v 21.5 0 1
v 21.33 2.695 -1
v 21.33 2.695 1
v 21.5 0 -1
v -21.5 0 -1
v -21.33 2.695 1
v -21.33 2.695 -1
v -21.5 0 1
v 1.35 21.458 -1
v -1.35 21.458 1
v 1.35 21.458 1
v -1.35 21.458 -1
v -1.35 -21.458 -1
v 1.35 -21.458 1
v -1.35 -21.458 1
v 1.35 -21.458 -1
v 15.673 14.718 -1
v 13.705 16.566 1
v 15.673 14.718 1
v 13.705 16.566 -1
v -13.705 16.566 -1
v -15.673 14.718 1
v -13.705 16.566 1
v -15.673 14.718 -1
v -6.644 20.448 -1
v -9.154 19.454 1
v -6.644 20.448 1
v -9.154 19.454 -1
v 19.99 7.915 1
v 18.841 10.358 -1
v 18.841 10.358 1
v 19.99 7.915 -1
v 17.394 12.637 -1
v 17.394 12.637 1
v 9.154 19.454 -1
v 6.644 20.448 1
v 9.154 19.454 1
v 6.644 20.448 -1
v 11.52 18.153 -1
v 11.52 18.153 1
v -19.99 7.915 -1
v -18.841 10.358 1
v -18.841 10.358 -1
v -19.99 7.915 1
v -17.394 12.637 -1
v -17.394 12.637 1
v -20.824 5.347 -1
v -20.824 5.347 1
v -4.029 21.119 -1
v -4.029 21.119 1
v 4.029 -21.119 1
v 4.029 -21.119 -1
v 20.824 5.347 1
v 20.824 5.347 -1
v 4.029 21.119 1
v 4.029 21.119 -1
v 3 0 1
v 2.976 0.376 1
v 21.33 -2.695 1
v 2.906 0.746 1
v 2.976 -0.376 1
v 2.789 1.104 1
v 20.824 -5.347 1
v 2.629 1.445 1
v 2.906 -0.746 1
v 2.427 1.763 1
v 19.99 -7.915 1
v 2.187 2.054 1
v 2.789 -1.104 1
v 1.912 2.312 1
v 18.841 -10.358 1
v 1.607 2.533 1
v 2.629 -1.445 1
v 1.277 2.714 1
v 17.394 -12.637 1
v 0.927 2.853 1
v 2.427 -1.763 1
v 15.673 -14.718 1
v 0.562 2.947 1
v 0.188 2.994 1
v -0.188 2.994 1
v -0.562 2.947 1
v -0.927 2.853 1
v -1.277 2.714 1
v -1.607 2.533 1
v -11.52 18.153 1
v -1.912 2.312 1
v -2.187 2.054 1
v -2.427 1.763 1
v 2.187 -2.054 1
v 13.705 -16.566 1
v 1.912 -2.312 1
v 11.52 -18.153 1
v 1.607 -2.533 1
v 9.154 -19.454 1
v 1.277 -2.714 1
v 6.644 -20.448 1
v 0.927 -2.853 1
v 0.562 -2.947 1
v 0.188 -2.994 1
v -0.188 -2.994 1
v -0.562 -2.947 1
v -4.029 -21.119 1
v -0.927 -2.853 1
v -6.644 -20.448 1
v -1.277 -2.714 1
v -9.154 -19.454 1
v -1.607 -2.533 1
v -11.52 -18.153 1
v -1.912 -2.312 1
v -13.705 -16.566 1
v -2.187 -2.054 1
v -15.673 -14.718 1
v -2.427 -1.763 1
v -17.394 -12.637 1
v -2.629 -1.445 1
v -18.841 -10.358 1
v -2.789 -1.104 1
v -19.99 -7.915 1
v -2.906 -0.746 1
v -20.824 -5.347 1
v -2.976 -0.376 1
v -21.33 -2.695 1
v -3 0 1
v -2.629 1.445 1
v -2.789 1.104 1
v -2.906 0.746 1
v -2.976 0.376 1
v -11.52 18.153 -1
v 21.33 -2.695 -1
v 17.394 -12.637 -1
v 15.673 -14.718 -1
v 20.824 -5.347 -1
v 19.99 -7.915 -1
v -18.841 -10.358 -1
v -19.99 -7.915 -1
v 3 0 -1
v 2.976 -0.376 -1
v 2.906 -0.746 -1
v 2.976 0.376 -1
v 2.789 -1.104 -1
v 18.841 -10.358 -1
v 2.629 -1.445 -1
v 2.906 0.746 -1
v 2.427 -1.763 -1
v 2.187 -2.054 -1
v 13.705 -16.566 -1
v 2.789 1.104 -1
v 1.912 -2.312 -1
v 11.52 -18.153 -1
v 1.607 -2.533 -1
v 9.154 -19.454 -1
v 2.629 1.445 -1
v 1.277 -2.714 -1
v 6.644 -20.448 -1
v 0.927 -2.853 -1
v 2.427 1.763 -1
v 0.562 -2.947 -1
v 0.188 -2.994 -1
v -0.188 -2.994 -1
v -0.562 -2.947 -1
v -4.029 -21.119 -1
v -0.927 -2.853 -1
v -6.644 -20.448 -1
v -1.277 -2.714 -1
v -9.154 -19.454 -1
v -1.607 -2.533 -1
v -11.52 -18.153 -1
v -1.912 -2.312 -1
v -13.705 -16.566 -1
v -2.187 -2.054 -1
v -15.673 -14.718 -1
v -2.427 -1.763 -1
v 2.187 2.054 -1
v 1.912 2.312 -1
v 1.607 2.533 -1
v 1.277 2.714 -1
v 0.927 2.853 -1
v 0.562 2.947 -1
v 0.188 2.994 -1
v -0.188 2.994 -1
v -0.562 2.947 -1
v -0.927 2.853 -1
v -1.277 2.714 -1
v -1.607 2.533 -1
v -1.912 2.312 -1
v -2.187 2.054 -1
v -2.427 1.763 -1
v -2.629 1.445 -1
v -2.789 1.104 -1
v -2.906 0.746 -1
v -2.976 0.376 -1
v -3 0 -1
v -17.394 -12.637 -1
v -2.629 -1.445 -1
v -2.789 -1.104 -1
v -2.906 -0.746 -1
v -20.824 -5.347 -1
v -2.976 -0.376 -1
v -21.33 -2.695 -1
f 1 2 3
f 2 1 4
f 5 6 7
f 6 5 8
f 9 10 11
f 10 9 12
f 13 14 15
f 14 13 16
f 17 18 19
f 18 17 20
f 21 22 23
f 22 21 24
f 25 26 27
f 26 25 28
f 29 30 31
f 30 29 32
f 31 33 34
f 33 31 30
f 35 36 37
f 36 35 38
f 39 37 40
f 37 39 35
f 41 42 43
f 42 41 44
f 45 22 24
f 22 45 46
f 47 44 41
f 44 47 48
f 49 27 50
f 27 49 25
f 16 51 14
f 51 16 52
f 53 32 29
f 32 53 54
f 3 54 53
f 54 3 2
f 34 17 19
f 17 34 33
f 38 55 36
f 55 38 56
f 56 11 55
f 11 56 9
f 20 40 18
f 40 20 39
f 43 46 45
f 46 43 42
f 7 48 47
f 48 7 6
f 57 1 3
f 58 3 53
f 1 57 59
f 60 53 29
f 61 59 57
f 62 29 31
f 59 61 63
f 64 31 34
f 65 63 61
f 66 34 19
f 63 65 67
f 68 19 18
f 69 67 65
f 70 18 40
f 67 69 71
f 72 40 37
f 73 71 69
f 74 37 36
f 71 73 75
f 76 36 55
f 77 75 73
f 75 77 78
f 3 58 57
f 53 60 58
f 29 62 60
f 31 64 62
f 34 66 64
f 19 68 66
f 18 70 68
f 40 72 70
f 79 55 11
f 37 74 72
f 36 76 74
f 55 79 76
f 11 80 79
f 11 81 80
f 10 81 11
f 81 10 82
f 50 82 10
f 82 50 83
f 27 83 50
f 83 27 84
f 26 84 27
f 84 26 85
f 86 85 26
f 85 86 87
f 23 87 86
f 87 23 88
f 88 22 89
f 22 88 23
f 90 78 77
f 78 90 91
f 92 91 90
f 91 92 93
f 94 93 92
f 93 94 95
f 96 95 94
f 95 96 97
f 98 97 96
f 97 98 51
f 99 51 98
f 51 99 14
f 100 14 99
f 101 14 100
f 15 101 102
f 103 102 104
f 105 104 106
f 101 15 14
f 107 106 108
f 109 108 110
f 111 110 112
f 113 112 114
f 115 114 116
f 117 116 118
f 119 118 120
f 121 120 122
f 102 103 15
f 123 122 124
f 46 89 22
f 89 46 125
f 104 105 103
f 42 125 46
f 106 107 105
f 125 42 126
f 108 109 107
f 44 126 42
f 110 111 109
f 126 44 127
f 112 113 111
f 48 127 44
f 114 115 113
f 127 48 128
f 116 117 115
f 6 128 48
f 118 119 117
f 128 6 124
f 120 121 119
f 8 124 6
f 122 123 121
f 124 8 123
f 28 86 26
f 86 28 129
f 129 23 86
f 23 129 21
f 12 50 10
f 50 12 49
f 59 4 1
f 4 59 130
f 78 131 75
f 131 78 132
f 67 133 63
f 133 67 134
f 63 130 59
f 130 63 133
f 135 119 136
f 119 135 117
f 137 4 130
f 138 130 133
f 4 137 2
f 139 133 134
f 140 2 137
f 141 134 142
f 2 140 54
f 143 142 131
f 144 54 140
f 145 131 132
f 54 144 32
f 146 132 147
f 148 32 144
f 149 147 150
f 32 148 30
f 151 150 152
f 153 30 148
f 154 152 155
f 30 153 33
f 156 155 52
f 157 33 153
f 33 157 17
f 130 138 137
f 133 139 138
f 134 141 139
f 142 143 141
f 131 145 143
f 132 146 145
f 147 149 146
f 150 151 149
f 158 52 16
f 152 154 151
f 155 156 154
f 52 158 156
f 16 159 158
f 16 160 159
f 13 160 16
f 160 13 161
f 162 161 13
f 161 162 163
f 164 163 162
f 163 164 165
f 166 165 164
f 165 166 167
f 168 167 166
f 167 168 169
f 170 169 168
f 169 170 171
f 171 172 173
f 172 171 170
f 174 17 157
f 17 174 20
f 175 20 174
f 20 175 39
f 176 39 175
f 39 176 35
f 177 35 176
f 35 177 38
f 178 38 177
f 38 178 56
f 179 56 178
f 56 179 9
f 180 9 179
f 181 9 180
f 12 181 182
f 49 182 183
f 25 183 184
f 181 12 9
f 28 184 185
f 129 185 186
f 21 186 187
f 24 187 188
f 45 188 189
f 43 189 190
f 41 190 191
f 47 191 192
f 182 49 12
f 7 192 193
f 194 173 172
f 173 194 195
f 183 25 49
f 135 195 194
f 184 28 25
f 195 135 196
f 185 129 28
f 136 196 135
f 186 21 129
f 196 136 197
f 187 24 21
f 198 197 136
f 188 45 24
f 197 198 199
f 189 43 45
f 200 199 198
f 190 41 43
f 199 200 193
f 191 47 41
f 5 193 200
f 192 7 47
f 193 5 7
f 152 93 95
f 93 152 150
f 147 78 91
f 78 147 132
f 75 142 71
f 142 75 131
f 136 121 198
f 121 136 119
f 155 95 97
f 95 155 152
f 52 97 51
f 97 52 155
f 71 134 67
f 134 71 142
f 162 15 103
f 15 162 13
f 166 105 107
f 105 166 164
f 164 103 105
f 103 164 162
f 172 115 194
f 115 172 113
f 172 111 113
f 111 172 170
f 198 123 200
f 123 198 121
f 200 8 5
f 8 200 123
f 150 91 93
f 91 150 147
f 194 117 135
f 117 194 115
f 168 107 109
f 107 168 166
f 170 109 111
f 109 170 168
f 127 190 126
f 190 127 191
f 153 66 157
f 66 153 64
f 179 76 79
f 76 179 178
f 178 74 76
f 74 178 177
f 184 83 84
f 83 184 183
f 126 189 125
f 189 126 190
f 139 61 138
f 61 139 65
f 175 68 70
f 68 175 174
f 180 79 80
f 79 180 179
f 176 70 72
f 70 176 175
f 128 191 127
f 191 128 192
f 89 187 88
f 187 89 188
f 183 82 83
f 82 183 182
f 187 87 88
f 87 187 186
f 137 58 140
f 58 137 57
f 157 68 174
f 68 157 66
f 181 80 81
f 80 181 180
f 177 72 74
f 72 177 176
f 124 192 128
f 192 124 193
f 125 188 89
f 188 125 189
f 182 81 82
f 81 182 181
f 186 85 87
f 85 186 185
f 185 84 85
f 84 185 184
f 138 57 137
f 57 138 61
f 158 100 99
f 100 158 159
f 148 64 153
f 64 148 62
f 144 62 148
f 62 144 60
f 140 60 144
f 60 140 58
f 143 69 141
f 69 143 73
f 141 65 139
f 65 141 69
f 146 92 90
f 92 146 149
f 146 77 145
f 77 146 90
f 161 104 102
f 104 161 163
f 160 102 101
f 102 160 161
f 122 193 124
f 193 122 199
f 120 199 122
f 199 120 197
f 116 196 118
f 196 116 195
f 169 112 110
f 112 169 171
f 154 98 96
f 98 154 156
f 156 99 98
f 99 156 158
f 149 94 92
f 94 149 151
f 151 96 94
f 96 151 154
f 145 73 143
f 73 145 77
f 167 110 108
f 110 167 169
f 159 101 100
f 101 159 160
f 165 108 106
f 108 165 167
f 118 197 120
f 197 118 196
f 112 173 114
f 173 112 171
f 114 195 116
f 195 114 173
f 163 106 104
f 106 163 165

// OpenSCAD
$fn = 50;


difference() {
	union() {
		translate(v = [0, 0, -1.0000000000]) {
			cylinder(h = 2, r = 21.5000000000);
		}
	}
	union() {
		translate(v = [0, 0, -100.0000000000]) {
			cylinder(h = 200, r = 3);
		}
	}
}
